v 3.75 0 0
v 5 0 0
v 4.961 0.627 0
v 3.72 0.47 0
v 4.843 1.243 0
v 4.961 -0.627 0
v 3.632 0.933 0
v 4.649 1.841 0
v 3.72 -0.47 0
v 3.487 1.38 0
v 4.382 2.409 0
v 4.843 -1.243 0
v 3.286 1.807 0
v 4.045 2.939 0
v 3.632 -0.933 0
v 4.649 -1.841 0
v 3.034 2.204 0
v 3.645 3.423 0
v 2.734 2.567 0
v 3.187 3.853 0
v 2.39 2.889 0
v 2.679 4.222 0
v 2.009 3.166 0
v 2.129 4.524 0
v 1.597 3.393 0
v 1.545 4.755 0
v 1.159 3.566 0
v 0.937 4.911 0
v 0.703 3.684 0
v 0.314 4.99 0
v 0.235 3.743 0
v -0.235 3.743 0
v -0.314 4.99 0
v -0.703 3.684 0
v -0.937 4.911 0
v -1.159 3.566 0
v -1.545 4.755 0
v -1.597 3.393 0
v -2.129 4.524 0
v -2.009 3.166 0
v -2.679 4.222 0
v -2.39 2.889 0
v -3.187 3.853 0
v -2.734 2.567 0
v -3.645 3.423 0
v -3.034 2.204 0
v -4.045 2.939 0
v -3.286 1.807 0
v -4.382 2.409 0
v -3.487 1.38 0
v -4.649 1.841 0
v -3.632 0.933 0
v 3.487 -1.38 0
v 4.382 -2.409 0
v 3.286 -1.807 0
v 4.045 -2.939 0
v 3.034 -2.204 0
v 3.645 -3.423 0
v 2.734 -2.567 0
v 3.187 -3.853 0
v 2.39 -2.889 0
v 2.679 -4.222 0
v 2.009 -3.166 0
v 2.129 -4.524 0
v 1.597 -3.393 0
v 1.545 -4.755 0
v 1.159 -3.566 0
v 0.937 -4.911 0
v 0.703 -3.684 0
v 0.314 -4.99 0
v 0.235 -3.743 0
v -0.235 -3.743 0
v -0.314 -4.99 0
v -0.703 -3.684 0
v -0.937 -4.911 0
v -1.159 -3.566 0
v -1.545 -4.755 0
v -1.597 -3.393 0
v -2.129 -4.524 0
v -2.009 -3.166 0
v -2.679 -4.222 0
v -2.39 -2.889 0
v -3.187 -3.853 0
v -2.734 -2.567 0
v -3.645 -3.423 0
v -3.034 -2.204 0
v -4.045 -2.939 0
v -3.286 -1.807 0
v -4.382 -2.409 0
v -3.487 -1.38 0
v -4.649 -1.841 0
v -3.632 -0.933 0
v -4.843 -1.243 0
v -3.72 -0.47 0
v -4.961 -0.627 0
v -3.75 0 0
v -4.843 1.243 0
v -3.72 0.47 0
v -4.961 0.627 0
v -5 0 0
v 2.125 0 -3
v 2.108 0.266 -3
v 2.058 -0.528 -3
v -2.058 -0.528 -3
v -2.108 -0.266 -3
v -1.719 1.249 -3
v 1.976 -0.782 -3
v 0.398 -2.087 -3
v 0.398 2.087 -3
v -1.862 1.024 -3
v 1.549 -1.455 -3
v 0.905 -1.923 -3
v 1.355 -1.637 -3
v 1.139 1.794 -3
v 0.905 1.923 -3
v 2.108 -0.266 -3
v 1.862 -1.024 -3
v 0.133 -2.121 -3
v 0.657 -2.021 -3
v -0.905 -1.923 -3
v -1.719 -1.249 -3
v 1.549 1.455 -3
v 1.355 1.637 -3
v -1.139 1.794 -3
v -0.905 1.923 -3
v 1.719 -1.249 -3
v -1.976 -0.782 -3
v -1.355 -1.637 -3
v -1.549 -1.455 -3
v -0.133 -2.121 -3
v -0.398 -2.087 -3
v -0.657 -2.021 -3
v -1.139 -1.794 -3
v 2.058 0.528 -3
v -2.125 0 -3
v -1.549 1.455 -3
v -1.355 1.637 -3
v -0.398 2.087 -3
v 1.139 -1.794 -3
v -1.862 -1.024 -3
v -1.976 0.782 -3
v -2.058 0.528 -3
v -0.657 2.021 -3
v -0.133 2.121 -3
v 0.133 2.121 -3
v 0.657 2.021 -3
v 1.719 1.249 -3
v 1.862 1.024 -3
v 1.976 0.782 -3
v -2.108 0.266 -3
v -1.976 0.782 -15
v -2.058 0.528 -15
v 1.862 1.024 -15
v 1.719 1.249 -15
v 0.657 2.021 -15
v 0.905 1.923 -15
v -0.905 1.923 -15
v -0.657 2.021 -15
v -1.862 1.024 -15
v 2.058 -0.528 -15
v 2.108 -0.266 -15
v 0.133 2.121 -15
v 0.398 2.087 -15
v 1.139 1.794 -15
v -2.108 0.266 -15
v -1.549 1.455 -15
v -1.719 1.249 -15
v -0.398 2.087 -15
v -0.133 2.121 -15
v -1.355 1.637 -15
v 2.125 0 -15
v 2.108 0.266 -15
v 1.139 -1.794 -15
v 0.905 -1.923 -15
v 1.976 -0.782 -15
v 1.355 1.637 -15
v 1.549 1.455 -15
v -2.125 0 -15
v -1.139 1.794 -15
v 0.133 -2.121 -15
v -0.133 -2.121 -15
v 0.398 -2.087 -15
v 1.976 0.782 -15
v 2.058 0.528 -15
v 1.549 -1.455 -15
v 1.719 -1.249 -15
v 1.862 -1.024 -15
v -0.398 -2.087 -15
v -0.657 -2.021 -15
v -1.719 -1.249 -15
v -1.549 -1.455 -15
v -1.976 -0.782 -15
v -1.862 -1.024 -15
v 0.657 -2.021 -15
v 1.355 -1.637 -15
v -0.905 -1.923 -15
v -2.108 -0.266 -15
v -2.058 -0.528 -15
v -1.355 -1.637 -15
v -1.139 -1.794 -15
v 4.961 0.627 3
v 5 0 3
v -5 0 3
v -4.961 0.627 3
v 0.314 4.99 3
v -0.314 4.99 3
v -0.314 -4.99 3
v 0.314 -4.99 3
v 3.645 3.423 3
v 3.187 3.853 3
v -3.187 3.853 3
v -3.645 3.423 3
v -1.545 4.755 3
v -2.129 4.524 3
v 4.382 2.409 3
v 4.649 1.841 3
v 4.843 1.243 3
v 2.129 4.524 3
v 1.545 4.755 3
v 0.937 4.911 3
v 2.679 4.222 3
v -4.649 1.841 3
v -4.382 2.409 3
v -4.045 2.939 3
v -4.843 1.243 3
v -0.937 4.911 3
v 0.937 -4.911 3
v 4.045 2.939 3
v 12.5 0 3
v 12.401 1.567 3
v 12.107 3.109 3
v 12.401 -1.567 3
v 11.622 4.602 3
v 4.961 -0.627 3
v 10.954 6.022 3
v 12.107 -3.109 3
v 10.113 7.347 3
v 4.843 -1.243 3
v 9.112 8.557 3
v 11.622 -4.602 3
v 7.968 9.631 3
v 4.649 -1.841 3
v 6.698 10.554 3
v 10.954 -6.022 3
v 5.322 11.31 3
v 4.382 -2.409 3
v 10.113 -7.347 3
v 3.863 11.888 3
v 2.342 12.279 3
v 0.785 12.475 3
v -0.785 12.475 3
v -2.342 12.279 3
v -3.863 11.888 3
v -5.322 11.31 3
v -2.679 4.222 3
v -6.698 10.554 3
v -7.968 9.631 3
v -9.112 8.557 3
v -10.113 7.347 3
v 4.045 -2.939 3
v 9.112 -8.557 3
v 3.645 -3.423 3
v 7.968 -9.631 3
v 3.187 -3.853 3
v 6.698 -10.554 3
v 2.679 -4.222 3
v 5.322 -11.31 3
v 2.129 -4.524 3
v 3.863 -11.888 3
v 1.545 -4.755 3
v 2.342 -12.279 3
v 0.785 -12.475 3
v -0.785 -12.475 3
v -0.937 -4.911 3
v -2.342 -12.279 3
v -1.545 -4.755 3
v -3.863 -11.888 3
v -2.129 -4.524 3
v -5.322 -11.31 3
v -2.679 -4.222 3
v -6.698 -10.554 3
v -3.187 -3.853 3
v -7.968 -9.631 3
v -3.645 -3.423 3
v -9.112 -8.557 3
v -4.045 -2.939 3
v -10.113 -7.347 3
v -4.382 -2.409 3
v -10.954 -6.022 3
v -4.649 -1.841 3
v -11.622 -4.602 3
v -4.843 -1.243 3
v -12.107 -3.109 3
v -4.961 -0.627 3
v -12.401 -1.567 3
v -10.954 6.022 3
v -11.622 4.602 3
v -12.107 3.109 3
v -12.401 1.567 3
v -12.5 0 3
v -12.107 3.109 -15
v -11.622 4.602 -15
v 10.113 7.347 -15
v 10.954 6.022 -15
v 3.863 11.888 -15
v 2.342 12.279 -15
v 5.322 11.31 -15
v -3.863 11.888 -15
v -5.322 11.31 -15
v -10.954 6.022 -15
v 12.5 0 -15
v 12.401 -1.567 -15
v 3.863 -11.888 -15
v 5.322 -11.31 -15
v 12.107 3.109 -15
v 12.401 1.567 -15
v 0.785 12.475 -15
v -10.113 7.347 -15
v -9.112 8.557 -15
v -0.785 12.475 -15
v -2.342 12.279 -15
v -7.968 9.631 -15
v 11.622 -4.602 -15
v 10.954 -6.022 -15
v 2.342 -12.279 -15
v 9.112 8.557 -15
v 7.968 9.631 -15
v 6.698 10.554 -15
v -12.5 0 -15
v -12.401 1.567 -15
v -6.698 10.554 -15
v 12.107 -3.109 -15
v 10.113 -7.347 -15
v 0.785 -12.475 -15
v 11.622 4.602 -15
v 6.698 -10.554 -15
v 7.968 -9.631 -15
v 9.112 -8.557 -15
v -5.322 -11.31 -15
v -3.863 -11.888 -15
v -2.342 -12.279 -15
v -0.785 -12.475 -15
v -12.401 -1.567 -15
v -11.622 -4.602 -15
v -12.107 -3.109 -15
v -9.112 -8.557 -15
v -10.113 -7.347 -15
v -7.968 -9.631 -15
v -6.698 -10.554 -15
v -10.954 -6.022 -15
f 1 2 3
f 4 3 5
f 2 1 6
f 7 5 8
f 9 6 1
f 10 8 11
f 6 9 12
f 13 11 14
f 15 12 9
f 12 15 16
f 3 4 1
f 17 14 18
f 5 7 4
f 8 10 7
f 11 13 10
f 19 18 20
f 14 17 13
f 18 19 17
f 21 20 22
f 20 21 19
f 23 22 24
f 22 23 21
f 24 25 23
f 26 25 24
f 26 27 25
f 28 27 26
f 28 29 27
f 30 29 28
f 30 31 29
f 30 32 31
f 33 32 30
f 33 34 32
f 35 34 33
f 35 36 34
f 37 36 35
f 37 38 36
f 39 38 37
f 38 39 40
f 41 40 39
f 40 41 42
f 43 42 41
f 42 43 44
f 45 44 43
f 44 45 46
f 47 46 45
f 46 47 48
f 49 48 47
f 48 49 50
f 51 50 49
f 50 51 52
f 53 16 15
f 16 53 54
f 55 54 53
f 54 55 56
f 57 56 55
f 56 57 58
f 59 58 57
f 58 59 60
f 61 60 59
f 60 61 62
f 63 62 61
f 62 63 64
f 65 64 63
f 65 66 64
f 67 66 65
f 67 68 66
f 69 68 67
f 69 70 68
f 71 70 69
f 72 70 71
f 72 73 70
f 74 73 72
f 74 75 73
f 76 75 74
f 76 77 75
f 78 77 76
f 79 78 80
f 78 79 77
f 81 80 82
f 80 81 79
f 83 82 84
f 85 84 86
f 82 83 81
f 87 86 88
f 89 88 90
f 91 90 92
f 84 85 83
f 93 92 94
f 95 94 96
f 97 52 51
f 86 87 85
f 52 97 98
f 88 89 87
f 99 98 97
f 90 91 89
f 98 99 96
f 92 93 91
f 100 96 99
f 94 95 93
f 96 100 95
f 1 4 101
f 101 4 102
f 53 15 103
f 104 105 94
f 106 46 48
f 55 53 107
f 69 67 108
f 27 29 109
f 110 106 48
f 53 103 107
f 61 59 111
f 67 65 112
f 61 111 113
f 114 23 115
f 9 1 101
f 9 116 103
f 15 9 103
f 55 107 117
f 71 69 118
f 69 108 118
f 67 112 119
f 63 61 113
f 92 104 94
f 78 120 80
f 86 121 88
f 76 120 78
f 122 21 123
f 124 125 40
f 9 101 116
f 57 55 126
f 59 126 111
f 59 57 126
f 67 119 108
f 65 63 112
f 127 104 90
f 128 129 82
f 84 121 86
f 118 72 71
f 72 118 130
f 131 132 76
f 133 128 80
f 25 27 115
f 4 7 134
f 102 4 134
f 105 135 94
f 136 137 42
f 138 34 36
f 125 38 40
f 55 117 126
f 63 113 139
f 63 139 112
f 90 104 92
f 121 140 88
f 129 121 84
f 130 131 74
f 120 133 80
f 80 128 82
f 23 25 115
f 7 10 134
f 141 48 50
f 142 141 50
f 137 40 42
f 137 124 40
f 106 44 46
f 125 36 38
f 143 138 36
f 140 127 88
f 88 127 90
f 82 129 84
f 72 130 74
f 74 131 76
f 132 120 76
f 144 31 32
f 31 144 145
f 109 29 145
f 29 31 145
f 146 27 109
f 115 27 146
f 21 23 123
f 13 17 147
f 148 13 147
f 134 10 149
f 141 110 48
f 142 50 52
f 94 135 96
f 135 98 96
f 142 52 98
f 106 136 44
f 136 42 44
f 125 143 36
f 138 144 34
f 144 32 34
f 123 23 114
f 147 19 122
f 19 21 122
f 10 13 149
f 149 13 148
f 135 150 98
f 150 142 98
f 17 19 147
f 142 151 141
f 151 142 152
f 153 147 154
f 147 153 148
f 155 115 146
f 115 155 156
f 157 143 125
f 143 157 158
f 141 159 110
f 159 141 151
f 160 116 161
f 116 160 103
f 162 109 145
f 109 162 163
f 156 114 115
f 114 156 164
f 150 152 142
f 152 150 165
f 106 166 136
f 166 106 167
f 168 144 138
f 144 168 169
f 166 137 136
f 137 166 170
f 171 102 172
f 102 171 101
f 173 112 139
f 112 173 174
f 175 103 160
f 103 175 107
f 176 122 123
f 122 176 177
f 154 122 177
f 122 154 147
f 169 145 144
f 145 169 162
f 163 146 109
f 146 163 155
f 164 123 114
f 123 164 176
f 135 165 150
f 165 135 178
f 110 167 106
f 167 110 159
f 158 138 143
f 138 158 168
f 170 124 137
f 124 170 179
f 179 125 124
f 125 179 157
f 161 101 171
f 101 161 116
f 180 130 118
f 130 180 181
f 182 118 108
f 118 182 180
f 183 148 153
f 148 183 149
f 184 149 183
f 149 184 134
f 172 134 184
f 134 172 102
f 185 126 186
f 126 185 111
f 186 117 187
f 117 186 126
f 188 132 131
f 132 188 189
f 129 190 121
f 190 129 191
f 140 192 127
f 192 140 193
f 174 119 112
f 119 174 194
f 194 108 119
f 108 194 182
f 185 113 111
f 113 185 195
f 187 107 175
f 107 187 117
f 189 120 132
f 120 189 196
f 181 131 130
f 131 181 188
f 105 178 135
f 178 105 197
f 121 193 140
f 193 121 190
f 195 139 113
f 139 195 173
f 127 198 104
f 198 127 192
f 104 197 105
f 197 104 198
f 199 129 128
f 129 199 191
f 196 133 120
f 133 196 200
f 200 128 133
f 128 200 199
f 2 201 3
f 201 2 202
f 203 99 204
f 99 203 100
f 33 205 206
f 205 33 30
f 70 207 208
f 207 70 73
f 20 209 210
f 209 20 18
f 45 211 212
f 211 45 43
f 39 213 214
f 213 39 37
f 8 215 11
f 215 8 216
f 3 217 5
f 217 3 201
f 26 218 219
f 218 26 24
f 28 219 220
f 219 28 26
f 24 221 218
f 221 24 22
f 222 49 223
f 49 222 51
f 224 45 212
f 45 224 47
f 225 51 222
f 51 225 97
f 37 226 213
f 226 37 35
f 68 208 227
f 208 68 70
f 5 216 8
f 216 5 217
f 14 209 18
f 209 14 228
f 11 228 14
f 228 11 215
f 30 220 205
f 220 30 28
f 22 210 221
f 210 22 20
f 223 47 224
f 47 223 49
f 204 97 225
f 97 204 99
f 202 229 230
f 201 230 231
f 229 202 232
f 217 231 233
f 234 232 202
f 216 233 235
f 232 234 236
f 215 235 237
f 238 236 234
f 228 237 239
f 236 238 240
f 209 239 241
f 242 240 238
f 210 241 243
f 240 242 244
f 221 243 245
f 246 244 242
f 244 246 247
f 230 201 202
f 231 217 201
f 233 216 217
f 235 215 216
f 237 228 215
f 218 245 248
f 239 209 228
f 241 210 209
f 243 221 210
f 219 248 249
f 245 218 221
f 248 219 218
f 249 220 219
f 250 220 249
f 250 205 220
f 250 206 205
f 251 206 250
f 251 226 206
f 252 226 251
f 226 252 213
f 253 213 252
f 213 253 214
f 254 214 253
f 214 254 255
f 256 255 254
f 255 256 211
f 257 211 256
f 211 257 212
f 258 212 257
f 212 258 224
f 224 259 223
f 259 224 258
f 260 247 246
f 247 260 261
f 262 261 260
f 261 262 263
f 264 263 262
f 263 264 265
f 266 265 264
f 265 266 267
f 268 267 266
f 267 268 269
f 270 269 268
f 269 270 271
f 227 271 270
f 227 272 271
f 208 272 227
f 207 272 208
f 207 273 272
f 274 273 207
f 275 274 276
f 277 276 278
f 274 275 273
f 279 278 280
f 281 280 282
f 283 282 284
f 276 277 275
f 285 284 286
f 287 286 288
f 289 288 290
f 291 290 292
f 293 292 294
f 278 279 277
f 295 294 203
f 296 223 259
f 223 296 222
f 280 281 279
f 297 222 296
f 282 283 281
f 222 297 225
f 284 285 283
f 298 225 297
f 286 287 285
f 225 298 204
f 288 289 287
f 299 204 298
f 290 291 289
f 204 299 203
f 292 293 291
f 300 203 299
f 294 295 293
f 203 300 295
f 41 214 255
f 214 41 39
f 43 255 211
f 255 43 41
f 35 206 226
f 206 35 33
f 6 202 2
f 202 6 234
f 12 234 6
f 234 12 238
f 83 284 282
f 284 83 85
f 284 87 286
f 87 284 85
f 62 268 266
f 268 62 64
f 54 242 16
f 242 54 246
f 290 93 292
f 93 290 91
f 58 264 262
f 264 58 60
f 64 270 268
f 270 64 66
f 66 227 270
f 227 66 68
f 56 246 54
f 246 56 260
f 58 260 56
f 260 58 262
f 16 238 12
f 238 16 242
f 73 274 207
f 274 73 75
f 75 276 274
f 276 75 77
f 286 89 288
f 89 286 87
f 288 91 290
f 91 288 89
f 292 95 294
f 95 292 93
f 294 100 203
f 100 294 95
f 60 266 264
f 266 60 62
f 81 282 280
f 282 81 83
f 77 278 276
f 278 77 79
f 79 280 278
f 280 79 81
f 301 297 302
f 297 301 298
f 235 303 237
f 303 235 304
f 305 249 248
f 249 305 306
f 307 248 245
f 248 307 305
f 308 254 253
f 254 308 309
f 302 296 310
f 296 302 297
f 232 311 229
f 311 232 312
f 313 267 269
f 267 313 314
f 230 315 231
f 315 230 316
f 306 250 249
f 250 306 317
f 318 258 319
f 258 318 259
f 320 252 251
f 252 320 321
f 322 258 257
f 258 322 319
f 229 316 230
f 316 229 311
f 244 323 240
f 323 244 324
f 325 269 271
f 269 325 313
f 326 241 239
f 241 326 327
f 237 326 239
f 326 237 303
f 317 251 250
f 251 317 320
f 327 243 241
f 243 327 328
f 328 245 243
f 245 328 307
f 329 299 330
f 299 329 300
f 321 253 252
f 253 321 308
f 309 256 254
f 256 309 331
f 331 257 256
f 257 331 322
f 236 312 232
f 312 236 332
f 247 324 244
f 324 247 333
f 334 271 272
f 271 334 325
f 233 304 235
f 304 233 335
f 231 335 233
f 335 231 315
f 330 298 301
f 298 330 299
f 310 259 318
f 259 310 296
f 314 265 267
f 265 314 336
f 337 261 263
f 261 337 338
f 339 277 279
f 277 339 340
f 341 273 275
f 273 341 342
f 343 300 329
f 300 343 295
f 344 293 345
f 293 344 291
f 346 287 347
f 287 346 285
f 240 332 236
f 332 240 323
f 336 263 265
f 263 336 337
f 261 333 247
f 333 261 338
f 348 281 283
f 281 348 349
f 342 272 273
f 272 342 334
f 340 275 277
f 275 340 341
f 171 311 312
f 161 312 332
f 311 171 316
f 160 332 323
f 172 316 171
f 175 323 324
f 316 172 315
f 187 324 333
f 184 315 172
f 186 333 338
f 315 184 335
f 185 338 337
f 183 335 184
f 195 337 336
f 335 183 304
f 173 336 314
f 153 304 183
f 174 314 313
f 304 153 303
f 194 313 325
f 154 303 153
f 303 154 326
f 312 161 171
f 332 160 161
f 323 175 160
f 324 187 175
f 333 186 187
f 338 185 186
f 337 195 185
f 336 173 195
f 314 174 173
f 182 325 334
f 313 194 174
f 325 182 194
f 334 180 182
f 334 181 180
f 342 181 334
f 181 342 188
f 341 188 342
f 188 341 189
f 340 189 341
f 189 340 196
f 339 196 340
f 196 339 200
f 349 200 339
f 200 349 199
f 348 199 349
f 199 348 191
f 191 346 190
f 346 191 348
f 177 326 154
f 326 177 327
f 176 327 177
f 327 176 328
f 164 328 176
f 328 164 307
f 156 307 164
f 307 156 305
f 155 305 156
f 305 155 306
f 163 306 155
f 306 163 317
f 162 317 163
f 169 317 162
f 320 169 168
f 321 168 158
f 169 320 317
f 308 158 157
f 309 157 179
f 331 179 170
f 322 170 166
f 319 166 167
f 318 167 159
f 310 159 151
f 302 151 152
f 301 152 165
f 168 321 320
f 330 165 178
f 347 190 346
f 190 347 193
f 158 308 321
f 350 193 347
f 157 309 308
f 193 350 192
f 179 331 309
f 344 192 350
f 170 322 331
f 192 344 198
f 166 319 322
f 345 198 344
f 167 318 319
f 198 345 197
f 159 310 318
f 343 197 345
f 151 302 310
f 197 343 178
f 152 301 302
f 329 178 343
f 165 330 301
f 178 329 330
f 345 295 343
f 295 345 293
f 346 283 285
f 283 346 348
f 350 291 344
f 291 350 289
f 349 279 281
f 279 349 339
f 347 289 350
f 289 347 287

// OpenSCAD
$fn = 50;

difference() {
	union() {
		translate(v = [0, 0, -15.0]) {
			cylinder(h = 18, r = 12.5);
		}
	}
	union() {
		translate(v = [0, 0, 0]) {
			rotate(a = [0, 0, 0]) {
				difference() {
					union() {
						translate(v = [0, 0, -18.0]) {
							cylinder(h = 18, r = 2.0);
						}
						translate(v = [0, 0, -3]) {
							cylinder(h = 3, r1 = 2.125, r2 = 3.75);
						}
						translate(v = [0, 0, -18.0]) {
							cylinder(h = 18, r = 2.125);
						}
						translate(v = [0, 0, -18.0]) {
							cylinder(h = 18, r = 2.0);
						}
					}
					union();
				}
			}
		}
		#cylinder(h = 3, r = 5.0);
	}
}
